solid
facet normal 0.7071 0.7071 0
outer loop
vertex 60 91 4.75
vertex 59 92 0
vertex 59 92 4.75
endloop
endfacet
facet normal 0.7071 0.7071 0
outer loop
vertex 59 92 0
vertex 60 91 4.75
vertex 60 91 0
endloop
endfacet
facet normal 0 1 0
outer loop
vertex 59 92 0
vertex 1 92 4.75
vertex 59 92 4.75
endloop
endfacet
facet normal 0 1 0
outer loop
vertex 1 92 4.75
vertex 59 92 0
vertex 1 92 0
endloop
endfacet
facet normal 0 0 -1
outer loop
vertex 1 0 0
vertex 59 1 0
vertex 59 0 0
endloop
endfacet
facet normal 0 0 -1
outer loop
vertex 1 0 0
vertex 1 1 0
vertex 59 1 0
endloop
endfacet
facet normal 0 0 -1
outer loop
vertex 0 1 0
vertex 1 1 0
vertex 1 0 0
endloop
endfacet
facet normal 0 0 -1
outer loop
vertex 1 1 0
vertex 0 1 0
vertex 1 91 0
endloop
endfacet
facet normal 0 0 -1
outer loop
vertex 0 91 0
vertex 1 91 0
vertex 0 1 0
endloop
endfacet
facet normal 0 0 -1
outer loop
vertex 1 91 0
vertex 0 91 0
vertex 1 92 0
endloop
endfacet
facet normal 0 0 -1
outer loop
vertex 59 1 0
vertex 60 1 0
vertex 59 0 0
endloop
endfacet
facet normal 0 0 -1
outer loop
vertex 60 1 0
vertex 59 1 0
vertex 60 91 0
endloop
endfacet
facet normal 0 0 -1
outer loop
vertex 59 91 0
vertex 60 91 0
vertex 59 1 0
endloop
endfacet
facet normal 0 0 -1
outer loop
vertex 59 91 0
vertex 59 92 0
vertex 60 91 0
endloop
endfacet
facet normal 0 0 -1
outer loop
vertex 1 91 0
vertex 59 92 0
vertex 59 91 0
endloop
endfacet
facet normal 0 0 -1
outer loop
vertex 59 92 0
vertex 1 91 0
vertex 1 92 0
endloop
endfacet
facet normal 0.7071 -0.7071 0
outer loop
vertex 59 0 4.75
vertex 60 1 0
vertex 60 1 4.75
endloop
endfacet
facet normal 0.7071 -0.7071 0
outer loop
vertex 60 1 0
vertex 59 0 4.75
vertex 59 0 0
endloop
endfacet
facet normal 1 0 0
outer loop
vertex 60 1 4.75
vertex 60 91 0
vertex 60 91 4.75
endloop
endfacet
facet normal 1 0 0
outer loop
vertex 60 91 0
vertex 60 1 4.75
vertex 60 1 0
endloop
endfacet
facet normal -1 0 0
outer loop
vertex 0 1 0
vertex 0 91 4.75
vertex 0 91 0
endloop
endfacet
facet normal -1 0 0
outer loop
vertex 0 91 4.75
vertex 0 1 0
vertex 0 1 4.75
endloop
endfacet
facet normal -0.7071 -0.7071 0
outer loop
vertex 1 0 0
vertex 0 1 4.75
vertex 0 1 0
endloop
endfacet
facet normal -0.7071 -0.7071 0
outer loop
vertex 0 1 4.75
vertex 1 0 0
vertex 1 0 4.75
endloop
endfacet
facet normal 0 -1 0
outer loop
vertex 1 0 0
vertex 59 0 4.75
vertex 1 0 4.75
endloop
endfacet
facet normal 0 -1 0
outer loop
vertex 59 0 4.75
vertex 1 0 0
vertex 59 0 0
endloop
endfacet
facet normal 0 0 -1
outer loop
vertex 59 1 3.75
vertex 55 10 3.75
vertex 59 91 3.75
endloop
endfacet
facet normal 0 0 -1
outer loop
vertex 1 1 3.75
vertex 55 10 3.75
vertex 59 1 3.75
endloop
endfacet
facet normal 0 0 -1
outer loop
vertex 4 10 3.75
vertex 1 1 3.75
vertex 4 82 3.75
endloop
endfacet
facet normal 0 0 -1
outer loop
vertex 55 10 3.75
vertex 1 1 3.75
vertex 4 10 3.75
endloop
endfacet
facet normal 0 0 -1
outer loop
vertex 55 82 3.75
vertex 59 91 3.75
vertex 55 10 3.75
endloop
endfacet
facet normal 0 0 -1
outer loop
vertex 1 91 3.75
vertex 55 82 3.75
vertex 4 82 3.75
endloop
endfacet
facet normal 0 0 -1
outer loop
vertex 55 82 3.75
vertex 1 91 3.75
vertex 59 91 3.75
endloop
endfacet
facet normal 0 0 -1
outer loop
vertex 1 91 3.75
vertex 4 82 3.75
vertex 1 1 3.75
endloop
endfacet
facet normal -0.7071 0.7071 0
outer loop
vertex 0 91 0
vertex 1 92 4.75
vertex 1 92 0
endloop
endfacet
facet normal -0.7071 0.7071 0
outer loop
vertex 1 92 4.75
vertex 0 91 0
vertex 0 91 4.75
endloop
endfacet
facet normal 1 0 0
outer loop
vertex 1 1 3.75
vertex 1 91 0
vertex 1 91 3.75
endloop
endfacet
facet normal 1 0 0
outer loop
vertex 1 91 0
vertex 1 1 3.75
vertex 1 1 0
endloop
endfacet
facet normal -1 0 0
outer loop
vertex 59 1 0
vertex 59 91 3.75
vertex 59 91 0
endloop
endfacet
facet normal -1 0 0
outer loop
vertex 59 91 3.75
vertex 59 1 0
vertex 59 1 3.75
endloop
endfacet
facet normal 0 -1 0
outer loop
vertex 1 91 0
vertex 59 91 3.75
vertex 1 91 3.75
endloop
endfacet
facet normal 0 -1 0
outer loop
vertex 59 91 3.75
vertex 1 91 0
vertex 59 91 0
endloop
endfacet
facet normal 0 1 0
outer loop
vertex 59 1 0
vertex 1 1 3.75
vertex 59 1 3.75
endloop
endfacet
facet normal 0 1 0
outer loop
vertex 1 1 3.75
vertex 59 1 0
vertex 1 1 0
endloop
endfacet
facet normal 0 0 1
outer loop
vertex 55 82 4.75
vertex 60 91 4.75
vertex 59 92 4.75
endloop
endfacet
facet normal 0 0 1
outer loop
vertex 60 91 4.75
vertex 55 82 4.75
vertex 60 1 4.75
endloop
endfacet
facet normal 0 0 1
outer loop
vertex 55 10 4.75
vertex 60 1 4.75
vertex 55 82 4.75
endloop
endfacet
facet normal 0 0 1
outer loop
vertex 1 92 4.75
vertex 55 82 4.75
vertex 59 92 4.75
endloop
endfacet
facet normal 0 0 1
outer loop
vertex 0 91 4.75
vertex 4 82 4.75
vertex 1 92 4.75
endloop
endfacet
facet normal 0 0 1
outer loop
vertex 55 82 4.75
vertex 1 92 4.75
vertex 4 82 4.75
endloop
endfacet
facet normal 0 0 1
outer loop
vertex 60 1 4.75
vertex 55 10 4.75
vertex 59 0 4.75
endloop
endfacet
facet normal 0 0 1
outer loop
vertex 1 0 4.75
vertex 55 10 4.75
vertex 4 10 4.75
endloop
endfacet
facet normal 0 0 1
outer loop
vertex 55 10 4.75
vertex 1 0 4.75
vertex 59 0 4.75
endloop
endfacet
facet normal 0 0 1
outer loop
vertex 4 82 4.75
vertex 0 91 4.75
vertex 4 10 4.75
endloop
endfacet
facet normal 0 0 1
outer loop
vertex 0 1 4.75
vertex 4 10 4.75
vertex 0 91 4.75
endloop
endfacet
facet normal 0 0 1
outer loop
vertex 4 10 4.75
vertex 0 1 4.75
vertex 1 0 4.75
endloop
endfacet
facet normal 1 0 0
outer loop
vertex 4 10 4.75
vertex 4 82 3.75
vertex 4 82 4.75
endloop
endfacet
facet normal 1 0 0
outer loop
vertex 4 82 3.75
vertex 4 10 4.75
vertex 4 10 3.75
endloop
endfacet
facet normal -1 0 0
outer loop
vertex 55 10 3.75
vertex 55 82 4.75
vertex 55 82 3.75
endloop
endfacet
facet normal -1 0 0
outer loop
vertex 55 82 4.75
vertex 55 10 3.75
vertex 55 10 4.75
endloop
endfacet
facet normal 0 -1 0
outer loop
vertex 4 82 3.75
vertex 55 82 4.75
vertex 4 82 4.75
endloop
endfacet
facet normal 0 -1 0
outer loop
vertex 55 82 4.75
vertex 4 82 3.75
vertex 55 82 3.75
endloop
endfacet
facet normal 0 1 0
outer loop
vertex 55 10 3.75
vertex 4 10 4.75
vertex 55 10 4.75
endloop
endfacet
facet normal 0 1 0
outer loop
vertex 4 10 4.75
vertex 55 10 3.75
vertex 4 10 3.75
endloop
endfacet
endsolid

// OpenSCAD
// M8 bezel Jan 18 2024
// split into base and top part that is glued
// supports are impossible to remove when printed in one go

width=104;
wall_thickness=1;
top_thickness=1.0; // top layer over glass
base_height=4;
layer2_height=3.75;
post_height=10;

module screwhole(hole=3,height=10) {

        cylinder(h=height,r1=hole/2,r2=hole/2,center=true);
}

module rounded_cube(x,y,z,r) {
    linear_extrude(height=z) translate([r,r,0]) offset(r=r) square([x-2*r,y-2*r]);
}

module hollow_cube(height,length,cutx,cuty,cutheight,cutlength,depth,r) {
    difference () {
        rounded_cube(height,length,depth,r);
        translate([cutx,cuty,0]) rounded_cube(cutheight,cutlength,depth,0);

    }
}

difference () {
    union() {
    //    hollow_cube (72, 104,10,7,56,91,base_height,1); // bottom
       hollow_cube (60,90+wall_thickness*2,wall_thickness,wall_thickness,60-wall_thickness*2,90,layer2_height,1);  // layer over display PCB
        translate([0,0,layer2_height]) hollow_cube (60,90+wall_thickness*2,4,10,51,72,top_thickness,1);  // top layer over glass       
    };
 //   translate([25.5,3.5,0]) screwhole(1.5,post_height); // BL
//    translate([25.5,width-3.5,0]) screwhole(1.5,post_height); 
//    translate([3.5,26.5,0]) screwhole(1.5,post_height); 
//    translate([3.5,width-26.5,0]) screwhole(1.5,post_height); 
}
